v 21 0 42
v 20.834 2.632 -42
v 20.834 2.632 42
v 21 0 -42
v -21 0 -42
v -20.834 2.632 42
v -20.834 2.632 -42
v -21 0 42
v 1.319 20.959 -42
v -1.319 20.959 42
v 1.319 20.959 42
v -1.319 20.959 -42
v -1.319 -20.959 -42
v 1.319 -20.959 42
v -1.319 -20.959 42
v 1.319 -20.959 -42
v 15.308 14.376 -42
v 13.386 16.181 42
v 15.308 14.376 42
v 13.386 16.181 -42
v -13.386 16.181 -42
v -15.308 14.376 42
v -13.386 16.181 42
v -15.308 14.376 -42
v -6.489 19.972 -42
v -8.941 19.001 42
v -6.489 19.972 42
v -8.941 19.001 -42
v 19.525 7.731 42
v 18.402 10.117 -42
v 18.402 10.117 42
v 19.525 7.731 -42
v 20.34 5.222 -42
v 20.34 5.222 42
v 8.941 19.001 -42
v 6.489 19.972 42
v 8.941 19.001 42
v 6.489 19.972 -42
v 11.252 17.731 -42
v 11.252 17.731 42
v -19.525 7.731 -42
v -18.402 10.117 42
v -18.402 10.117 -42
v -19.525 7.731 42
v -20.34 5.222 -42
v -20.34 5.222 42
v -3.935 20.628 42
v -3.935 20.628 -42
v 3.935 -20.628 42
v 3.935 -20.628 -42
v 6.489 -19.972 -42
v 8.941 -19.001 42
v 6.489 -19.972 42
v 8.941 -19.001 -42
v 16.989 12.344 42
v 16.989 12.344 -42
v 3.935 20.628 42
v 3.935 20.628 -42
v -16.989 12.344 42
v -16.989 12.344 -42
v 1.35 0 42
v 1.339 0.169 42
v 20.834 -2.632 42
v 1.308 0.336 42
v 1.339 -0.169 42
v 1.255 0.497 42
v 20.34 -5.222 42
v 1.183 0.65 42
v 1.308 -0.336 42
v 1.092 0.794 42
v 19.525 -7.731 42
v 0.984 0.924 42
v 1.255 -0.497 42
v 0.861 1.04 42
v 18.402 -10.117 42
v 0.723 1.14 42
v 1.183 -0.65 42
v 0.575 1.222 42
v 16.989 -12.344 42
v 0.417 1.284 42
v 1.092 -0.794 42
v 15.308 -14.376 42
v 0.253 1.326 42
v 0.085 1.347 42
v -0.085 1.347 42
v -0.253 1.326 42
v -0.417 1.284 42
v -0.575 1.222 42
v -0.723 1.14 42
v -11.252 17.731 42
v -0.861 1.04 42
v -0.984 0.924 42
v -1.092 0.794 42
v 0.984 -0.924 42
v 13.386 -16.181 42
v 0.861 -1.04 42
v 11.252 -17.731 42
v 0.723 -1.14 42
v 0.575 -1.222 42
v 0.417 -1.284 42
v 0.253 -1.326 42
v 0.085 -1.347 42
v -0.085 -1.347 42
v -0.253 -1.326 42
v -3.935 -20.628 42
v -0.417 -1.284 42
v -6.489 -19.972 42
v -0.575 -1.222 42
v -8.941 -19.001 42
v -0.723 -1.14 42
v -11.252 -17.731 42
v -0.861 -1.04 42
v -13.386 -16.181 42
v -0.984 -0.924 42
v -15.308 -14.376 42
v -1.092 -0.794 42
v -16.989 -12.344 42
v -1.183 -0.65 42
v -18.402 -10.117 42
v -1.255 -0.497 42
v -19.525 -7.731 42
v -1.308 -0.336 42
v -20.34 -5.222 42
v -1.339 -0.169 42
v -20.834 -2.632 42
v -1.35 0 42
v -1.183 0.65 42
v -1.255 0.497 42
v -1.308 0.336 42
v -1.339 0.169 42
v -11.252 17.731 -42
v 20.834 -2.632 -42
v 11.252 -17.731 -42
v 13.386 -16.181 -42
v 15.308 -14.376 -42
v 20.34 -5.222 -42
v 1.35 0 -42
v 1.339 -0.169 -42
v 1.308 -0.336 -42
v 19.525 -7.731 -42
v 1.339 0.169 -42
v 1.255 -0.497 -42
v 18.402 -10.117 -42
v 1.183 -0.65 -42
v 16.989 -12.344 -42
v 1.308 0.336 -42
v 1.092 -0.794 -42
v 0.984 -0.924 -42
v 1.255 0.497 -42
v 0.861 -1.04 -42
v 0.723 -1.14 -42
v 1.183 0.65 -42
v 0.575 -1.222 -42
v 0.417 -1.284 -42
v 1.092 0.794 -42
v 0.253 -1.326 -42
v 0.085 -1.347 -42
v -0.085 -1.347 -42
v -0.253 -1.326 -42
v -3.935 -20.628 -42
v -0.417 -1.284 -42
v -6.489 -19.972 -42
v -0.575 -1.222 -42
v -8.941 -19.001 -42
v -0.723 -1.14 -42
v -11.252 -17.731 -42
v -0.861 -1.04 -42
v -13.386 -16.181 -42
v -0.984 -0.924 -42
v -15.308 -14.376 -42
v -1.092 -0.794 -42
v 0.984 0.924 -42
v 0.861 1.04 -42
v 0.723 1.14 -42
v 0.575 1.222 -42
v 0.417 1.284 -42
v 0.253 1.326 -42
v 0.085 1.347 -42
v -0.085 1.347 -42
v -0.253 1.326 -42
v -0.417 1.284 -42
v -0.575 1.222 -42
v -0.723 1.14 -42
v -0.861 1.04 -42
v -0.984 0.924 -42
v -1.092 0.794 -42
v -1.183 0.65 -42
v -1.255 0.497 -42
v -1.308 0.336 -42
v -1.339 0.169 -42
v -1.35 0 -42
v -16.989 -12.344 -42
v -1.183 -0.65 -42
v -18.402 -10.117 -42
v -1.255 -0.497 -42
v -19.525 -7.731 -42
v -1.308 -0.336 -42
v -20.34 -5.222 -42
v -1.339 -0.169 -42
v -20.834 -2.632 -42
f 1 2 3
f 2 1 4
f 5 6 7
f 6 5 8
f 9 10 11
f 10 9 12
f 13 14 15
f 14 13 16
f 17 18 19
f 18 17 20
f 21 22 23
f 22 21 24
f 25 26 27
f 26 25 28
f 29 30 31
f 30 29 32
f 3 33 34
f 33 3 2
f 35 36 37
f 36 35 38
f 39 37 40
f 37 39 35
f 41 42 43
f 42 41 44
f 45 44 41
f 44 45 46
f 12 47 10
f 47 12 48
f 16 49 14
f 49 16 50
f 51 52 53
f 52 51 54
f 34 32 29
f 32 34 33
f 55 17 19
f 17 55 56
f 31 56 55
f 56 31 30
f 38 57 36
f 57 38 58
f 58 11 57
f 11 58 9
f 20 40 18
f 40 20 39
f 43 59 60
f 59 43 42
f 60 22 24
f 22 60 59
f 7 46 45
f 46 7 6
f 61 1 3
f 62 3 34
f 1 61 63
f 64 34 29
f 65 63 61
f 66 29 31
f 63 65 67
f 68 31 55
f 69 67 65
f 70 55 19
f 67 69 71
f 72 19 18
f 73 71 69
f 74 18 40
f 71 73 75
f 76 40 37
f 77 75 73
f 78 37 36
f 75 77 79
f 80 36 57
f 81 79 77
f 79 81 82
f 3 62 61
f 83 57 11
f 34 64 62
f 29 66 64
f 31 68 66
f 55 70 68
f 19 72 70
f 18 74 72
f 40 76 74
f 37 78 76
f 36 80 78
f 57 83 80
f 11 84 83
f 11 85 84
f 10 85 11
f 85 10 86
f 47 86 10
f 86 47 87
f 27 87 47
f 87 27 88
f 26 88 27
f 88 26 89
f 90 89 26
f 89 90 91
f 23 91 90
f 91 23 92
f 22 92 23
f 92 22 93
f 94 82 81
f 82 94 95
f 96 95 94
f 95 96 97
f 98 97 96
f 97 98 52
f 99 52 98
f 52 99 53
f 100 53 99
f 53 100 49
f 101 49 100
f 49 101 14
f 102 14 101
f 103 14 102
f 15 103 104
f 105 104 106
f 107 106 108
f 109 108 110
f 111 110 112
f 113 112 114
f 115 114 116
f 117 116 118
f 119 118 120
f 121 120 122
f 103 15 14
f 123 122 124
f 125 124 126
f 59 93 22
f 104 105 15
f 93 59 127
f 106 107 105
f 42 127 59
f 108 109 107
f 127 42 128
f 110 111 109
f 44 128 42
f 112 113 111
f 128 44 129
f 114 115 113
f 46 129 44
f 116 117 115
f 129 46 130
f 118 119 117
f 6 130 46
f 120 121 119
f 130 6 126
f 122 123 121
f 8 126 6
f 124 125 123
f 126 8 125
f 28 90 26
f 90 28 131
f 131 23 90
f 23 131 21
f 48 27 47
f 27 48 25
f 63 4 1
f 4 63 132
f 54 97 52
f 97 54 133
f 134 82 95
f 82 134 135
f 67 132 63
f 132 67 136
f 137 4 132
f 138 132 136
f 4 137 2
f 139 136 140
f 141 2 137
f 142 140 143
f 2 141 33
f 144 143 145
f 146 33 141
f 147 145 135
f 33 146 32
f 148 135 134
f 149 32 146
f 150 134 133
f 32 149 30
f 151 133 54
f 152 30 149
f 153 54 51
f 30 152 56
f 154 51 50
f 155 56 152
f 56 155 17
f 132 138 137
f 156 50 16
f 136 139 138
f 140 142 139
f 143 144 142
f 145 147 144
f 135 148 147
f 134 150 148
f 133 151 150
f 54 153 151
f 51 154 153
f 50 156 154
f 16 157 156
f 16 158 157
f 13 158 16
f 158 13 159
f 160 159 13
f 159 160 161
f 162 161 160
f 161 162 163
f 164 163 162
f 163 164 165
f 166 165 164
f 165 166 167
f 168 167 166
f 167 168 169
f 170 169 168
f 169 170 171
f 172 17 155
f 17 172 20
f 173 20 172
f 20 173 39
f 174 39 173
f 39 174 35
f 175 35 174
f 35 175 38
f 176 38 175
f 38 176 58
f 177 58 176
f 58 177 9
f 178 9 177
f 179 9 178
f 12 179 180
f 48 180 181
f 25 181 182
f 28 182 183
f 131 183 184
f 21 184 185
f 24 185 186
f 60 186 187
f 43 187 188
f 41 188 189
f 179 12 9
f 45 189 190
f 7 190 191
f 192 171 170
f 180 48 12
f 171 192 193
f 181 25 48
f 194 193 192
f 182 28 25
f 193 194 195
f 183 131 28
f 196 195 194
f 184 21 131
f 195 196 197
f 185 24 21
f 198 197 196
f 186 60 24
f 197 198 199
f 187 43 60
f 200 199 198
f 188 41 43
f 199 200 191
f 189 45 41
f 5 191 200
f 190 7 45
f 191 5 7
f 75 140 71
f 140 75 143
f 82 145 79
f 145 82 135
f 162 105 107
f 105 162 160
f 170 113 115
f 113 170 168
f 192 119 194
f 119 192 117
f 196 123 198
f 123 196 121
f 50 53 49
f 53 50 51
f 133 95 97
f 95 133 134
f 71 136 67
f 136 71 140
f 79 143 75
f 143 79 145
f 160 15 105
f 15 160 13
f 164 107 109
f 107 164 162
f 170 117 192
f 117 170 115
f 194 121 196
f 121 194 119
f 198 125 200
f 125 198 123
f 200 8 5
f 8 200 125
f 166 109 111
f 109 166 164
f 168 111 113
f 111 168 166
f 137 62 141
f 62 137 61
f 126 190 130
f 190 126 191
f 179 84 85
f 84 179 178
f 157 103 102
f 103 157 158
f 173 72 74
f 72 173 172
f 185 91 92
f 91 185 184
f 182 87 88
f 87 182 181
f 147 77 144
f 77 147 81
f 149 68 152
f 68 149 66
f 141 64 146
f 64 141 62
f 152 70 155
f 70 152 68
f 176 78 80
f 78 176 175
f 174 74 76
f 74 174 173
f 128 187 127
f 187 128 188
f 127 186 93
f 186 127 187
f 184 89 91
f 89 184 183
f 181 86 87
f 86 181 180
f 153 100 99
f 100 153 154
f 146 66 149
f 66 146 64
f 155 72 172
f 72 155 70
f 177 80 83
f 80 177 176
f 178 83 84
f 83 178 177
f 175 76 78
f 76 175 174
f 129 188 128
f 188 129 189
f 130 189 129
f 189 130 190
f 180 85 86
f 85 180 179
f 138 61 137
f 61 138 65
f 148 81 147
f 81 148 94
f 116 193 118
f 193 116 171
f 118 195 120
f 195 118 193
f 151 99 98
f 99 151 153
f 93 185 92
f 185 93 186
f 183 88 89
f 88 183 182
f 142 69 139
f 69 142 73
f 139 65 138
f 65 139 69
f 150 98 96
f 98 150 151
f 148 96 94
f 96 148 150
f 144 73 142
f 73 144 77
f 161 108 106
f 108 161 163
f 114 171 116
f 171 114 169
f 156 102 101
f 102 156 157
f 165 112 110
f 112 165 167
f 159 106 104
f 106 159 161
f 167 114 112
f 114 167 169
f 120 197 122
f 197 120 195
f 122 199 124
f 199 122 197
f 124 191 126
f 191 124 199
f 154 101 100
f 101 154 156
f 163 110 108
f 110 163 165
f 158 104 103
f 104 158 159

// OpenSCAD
$fn = 50;


difference() {
	union() {
		translate(v = [0, 0, -42.0000000000]) {
			cylinder(h = 84, r = 21.0000000000);
		}
	}
	union() {
		translate(v = [0, 0, -100.0000000000]) {
			cylinder(h = 200, r = 1.3500000000);
		}
	}
}
